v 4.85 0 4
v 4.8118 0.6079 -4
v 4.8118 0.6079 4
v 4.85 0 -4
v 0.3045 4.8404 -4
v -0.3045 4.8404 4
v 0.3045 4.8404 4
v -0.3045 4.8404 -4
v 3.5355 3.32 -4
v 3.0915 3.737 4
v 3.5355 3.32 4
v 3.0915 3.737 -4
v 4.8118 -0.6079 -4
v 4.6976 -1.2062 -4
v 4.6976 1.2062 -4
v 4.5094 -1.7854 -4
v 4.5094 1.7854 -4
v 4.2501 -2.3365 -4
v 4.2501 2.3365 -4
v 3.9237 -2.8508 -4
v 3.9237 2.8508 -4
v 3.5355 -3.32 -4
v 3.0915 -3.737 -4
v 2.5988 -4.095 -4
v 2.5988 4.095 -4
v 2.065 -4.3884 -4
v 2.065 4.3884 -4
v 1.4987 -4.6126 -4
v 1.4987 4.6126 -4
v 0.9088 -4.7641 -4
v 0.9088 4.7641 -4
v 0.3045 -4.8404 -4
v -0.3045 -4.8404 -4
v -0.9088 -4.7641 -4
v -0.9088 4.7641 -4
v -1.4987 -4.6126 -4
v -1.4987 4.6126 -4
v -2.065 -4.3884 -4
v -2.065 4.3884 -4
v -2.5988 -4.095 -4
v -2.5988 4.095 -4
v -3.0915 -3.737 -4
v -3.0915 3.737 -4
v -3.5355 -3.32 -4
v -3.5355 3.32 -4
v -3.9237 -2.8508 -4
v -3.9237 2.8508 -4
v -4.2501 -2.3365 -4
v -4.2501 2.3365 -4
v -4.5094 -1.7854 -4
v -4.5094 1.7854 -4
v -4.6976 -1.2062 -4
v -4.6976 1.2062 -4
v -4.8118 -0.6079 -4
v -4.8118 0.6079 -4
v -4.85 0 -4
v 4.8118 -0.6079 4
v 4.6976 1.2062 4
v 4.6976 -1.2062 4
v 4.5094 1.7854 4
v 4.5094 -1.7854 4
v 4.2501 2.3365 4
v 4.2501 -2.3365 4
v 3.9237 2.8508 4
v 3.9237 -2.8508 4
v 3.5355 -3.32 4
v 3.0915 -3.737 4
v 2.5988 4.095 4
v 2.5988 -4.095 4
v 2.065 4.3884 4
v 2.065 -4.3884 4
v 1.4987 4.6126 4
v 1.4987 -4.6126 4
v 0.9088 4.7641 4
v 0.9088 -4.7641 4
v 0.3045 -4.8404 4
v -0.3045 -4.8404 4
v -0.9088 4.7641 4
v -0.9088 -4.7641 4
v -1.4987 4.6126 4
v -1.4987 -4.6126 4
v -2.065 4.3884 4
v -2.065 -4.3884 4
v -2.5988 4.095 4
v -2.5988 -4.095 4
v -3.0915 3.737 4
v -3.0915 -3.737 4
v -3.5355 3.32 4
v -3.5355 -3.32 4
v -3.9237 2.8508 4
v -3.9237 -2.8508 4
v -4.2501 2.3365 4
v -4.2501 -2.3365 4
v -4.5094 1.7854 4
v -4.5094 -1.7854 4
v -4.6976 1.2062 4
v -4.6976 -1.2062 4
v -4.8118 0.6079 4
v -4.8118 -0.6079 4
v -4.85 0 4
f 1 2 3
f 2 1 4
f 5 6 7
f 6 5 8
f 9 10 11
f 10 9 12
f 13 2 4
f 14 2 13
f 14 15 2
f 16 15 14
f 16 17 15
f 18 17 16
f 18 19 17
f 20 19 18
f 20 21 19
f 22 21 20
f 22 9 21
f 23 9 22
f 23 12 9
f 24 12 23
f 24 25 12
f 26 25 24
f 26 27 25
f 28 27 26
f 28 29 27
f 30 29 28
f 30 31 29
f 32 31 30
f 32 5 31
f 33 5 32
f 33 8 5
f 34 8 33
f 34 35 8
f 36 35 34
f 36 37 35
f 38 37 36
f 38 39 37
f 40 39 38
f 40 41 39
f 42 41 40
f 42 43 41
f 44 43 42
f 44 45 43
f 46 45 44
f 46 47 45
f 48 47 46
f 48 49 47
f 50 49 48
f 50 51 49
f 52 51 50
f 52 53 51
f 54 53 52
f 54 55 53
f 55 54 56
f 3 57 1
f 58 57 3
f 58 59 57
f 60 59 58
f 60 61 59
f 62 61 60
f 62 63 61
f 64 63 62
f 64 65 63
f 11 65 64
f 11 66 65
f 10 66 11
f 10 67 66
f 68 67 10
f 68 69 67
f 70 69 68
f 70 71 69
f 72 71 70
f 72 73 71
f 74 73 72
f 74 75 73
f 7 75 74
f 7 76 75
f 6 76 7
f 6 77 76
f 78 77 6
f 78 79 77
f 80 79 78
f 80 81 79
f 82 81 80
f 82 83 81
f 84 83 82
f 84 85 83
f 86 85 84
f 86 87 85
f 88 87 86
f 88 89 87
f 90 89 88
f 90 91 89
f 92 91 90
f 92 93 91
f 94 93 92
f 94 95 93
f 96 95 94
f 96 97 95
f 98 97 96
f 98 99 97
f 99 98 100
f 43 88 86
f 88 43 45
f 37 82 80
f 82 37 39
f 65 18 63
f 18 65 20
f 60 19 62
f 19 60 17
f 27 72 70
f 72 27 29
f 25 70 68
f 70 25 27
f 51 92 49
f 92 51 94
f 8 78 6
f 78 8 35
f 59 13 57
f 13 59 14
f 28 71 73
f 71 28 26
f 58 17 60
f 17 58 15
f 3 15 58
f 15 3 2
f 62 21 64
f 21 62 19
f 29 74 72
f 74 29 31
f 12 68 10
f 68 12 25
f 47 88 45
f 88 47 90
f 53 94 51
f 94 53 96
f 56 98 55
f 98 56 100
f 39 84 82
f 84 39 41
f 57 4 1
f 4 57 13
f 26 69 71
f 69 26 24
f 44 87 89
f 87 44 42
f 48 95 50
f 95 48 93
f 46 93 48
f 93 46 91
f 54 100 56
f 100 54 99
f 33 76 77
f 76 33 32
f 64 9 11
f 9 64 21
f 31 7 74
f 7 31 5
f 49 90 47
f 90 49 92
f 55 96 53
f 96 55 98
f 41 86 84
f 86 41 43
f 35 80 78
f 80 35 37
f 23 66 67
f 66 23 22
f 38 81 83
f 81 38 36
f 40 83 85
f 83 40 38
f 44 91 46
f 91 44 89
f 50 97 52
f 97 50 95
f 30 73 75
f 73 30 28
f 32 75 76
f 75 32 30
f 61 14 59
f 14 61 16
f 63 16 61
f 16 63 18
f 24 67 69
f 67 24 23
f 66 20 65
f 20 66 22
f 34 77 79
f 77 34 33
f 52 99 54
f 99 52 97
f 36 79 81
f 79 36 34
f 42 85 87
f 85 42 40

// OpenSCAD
$fn = 50;


difference() {
	union() {
		translate(v = [0, 0, -4.0000000000]) {
			cylinder(h = 8, r = 4.8500000000);
		}
	}
	union() {
		translate(v = [0, 0, -100.0000000000]) {
			cylinder(h = 200, r = 0);
		}
	}
}
